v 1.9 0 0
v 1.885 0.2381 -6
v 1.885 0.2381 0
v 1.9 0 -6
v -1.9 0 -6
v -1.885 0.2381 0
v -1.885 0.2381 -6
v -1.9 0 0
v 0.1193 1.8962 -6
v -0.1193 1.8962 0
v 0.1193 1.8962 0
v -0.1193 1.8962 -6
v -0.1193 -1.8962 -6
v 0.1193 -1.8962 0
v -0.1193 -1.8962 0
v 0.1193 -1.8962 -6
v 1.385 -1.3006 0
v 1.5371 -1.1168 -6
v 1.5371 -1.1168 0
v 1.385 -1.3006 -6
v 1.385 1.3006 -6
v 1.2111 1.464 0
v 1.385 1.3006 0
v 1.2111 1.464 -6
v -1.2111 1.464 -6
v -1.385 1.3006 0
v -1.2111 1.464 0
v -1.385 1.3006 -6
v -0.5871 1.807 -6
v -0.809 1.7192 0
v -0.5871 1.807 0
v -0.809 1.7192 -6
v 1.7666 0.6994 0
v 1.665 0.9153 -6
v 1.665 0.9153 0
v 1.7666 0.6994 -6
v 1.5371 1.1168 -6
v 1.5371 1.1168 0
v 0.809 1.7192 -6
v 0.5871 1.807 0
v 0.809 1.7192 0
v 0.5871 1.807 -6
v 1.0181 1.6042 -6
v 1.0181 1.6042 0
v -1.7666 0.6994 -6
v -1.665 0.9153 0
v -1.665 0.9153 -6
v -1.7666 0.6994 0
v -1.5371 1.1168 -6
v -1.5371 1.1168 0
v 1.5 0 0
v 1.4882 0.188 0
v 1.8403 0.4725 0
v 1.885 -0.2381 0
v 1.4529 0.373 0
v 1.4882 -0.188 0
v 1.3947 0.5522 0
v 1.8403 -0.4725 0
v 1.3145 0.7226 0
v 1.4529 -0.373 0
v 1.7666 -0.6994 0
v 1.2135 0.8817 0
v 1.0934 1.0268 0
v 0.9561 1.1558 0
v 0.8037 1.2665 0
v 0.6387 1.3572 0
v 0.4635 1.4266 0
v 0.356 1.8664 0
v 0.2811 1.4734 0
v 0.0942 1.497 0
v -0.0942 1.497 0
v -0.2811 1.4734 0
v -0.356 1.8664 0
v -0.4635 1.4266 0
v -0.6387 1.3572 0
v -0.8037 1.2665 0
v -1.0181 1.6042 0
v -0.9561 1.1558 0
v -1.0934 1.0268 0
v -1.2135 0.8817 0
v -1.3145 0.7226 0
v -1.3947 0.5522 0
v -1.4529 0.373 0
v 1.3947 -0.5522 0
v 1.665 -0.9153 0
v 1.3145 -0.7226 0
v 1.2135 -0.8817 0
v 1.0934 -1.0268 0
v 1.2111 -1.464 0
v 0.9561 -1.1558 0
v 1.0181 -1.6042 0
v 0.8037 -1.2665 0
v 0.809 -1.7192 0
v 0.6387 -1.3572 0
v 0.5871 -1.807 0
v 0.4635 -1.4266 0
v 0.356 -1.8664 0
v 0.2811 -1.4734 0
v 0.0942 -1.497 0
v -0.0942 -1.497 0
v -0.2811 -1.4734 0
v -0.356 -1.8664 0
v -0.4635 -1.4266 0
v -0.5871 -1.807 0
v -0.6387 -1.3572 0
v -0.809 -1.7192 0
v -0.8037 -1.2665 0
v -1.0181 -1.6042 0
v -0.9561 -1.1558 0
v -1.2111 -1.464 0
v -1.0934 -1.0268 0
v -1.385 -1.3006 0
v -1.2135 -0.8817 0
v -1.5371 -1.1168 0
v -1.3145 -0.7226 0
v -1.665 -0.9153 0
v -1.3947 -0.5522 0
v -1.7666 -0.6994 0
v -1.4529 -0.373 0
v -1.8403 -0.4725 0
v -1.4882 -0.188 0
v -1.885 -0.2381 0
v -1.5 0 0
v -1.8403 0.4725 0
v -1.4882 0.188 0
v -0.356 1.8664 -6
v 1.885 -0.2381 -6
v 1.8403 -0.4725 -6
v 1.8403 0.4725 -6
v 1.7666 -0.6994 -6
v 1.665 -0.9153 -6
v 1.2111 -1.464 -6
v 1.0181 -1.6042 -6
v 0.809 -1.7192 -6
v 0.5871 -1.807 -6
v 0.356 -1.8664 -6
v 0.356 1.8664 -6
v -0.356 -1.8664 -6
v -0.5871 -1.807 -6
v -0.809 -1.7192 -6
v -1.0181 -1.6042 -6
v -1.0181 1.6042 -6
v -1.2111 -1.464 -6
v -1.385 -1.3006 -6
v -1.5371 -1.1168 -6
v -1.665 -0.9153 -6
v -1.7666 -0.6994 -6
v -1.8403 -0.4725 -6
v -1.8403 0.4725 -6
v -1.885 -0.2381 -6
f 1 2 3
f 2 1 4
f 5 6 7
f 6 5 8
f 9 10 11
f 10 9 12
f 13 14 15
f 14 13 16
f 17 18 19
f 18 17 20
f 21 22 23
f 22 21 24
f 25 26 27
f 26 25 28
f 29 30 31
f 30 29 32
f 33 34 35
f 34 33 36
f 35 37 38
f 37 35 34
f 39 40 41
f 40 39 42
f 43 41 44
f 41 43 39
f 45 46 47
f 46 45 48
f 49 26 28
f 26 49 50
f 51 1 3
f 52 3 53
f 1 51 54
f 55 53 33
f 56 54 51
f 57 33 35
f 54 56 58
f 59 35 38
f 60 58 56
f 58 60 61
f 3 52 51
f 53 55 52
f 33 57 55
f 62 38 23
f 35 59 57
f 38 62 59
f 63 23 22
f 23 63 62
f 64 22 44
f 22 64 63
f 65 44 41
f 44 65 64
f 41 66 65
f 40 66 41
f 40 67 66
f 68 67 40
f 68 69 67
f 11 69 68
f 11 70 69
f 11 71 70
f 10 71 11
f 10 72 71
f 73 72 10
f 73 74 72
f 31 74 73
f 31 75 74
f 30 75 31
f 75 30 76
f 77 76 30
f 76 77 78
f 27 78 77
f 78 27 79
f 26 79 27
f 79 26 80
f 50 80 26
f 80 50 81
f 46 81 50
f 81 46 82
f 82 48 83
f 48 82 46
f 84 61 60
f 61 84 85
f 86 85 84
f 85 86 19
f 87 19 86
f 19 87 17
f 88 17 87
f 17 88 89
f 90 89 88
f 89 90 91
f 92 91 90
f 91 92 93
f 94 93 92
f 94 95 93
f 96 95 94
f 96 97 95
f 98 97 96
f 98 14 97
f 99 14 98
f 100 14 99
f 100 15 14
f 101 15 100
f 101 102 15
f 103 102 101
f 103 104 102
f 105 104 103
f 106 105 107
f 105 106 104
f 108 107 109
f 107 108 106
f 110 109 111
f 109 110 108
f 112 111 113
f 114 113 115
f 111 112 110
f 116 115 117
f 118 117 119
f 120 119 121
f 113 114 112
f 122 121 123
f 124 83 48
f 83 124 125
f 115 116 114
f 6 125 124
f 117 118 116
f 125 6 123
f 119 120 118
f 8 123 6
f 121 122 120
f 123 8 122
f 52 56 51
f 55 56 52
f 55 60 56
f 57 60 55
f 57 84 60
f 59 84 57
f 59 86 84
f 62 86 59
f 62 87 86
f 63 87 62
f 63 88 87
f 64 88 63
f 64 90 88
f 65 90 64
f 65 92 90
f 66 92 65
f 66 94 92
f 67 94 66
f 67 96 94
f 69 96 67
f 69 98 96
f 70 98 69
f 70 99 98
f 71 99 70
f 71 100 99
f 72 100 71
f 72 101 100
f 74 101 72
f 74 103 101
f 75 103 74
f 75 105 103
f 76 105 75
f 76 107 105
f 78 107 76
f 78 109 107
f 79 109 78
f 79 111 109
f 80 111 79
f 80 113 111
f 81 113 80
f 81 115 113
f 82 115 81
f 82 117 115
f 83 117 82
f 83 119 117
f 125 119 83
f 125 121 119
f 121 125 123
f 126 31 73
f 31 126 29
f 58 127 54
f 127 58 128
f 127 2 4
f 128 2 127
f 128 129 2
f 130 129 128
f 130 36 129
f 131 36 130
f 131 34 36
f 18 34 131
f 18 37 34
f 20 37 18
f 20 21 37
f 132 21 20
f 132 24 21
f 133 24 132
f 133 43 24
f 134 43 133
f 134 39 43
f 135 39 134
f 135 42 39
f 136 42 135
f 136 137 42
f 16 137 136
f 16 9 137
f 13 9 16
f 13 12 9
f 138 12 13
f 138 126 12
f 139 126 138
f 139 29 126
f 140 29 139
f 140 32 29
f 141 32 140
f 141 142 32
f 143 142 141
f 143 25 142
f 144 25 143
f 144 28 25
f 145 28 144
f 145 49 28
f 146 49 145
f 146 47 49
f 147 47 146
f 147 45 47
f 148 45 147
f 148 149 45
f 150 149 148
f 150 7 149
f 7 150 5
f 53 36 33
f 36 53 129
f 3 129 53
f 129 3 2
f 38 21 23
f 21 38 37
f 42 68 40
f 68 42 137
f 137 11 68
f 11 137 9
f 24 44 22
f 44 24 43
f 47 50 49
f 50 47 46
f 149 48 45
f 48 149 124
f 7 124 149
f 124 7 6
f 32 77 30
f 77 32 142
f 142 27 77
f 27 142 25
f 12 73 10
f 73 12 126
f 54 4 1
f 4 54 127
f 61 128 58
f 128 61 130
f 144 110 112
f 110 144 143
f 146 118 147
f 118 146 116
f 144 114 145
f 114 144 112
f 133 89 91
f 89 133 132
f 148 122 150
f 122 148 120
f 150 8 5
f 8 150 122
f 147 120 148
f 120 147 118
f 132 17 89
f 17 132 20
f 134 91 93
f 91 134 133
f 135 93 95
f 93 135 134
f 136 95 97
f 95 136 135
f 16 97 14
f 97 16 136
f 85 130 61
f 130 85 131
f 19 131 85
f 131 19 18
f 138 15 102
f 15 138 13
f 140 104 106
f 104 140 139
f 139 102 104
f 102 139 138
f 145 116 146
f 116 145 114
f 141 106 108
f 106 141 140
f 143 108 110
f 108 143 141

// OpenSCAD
$fn = 50;


difference() {
	union() {
		translate(v = [0, 0, -6.0000000000]) {
			cylinder(h = 6, r = 1.9000000000);
		}
		translate(v = [0, 0, -6.0000000000]) {
			cylinder(h = 6, r = 1.9000000000);
		}
		translate(v = [0, 0, -6.0000000000]) {
			cylinder(h = 6, r = 1.9000000000);
		}
	}
	union() {
		cylinder(h = 100, r = 1.5000000000);
	}
}
